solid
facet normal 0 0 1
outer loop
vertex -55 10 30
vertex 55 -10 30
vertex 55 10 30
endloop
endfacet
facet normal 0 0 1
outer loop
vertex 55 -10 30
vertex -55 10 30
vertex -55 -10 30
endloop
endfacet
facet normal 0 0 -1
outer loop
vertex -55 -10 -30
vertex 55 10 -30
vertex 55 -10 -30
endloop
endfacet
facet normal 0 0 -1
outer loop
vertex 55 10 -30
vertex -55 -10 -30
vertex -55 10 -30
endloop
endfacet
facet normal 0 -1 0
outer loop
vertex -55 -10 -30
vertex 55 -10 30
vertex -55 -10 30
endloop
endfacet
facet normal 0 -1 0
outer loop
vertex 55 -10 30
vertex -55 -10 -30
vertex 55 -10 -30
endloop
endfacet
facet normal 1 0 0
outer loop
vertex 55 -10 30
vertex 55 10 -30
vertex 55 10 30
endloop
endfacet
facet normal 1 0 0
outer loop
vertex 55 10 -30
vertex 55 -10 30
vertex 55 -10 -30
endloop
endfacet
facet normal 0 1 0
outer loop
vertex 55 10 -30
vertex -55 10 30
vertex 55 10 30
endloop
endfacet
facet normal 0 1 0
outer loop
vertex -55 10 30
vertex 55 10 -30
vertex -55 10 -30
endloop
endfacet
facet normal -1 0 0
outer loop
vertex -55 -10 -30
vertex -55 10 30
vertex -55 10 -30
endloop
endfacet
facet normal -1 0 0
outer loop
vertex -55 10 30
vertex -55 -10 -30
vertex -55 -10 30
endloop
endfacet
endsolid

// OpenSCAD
// ========================================
// a 110 x 20 x 60 mm box
// NeuroCAD canonical IR; dimensions are millimetres
// ========================================
$fn = 48;

cube(size=[110, 20, 60], center=true);
